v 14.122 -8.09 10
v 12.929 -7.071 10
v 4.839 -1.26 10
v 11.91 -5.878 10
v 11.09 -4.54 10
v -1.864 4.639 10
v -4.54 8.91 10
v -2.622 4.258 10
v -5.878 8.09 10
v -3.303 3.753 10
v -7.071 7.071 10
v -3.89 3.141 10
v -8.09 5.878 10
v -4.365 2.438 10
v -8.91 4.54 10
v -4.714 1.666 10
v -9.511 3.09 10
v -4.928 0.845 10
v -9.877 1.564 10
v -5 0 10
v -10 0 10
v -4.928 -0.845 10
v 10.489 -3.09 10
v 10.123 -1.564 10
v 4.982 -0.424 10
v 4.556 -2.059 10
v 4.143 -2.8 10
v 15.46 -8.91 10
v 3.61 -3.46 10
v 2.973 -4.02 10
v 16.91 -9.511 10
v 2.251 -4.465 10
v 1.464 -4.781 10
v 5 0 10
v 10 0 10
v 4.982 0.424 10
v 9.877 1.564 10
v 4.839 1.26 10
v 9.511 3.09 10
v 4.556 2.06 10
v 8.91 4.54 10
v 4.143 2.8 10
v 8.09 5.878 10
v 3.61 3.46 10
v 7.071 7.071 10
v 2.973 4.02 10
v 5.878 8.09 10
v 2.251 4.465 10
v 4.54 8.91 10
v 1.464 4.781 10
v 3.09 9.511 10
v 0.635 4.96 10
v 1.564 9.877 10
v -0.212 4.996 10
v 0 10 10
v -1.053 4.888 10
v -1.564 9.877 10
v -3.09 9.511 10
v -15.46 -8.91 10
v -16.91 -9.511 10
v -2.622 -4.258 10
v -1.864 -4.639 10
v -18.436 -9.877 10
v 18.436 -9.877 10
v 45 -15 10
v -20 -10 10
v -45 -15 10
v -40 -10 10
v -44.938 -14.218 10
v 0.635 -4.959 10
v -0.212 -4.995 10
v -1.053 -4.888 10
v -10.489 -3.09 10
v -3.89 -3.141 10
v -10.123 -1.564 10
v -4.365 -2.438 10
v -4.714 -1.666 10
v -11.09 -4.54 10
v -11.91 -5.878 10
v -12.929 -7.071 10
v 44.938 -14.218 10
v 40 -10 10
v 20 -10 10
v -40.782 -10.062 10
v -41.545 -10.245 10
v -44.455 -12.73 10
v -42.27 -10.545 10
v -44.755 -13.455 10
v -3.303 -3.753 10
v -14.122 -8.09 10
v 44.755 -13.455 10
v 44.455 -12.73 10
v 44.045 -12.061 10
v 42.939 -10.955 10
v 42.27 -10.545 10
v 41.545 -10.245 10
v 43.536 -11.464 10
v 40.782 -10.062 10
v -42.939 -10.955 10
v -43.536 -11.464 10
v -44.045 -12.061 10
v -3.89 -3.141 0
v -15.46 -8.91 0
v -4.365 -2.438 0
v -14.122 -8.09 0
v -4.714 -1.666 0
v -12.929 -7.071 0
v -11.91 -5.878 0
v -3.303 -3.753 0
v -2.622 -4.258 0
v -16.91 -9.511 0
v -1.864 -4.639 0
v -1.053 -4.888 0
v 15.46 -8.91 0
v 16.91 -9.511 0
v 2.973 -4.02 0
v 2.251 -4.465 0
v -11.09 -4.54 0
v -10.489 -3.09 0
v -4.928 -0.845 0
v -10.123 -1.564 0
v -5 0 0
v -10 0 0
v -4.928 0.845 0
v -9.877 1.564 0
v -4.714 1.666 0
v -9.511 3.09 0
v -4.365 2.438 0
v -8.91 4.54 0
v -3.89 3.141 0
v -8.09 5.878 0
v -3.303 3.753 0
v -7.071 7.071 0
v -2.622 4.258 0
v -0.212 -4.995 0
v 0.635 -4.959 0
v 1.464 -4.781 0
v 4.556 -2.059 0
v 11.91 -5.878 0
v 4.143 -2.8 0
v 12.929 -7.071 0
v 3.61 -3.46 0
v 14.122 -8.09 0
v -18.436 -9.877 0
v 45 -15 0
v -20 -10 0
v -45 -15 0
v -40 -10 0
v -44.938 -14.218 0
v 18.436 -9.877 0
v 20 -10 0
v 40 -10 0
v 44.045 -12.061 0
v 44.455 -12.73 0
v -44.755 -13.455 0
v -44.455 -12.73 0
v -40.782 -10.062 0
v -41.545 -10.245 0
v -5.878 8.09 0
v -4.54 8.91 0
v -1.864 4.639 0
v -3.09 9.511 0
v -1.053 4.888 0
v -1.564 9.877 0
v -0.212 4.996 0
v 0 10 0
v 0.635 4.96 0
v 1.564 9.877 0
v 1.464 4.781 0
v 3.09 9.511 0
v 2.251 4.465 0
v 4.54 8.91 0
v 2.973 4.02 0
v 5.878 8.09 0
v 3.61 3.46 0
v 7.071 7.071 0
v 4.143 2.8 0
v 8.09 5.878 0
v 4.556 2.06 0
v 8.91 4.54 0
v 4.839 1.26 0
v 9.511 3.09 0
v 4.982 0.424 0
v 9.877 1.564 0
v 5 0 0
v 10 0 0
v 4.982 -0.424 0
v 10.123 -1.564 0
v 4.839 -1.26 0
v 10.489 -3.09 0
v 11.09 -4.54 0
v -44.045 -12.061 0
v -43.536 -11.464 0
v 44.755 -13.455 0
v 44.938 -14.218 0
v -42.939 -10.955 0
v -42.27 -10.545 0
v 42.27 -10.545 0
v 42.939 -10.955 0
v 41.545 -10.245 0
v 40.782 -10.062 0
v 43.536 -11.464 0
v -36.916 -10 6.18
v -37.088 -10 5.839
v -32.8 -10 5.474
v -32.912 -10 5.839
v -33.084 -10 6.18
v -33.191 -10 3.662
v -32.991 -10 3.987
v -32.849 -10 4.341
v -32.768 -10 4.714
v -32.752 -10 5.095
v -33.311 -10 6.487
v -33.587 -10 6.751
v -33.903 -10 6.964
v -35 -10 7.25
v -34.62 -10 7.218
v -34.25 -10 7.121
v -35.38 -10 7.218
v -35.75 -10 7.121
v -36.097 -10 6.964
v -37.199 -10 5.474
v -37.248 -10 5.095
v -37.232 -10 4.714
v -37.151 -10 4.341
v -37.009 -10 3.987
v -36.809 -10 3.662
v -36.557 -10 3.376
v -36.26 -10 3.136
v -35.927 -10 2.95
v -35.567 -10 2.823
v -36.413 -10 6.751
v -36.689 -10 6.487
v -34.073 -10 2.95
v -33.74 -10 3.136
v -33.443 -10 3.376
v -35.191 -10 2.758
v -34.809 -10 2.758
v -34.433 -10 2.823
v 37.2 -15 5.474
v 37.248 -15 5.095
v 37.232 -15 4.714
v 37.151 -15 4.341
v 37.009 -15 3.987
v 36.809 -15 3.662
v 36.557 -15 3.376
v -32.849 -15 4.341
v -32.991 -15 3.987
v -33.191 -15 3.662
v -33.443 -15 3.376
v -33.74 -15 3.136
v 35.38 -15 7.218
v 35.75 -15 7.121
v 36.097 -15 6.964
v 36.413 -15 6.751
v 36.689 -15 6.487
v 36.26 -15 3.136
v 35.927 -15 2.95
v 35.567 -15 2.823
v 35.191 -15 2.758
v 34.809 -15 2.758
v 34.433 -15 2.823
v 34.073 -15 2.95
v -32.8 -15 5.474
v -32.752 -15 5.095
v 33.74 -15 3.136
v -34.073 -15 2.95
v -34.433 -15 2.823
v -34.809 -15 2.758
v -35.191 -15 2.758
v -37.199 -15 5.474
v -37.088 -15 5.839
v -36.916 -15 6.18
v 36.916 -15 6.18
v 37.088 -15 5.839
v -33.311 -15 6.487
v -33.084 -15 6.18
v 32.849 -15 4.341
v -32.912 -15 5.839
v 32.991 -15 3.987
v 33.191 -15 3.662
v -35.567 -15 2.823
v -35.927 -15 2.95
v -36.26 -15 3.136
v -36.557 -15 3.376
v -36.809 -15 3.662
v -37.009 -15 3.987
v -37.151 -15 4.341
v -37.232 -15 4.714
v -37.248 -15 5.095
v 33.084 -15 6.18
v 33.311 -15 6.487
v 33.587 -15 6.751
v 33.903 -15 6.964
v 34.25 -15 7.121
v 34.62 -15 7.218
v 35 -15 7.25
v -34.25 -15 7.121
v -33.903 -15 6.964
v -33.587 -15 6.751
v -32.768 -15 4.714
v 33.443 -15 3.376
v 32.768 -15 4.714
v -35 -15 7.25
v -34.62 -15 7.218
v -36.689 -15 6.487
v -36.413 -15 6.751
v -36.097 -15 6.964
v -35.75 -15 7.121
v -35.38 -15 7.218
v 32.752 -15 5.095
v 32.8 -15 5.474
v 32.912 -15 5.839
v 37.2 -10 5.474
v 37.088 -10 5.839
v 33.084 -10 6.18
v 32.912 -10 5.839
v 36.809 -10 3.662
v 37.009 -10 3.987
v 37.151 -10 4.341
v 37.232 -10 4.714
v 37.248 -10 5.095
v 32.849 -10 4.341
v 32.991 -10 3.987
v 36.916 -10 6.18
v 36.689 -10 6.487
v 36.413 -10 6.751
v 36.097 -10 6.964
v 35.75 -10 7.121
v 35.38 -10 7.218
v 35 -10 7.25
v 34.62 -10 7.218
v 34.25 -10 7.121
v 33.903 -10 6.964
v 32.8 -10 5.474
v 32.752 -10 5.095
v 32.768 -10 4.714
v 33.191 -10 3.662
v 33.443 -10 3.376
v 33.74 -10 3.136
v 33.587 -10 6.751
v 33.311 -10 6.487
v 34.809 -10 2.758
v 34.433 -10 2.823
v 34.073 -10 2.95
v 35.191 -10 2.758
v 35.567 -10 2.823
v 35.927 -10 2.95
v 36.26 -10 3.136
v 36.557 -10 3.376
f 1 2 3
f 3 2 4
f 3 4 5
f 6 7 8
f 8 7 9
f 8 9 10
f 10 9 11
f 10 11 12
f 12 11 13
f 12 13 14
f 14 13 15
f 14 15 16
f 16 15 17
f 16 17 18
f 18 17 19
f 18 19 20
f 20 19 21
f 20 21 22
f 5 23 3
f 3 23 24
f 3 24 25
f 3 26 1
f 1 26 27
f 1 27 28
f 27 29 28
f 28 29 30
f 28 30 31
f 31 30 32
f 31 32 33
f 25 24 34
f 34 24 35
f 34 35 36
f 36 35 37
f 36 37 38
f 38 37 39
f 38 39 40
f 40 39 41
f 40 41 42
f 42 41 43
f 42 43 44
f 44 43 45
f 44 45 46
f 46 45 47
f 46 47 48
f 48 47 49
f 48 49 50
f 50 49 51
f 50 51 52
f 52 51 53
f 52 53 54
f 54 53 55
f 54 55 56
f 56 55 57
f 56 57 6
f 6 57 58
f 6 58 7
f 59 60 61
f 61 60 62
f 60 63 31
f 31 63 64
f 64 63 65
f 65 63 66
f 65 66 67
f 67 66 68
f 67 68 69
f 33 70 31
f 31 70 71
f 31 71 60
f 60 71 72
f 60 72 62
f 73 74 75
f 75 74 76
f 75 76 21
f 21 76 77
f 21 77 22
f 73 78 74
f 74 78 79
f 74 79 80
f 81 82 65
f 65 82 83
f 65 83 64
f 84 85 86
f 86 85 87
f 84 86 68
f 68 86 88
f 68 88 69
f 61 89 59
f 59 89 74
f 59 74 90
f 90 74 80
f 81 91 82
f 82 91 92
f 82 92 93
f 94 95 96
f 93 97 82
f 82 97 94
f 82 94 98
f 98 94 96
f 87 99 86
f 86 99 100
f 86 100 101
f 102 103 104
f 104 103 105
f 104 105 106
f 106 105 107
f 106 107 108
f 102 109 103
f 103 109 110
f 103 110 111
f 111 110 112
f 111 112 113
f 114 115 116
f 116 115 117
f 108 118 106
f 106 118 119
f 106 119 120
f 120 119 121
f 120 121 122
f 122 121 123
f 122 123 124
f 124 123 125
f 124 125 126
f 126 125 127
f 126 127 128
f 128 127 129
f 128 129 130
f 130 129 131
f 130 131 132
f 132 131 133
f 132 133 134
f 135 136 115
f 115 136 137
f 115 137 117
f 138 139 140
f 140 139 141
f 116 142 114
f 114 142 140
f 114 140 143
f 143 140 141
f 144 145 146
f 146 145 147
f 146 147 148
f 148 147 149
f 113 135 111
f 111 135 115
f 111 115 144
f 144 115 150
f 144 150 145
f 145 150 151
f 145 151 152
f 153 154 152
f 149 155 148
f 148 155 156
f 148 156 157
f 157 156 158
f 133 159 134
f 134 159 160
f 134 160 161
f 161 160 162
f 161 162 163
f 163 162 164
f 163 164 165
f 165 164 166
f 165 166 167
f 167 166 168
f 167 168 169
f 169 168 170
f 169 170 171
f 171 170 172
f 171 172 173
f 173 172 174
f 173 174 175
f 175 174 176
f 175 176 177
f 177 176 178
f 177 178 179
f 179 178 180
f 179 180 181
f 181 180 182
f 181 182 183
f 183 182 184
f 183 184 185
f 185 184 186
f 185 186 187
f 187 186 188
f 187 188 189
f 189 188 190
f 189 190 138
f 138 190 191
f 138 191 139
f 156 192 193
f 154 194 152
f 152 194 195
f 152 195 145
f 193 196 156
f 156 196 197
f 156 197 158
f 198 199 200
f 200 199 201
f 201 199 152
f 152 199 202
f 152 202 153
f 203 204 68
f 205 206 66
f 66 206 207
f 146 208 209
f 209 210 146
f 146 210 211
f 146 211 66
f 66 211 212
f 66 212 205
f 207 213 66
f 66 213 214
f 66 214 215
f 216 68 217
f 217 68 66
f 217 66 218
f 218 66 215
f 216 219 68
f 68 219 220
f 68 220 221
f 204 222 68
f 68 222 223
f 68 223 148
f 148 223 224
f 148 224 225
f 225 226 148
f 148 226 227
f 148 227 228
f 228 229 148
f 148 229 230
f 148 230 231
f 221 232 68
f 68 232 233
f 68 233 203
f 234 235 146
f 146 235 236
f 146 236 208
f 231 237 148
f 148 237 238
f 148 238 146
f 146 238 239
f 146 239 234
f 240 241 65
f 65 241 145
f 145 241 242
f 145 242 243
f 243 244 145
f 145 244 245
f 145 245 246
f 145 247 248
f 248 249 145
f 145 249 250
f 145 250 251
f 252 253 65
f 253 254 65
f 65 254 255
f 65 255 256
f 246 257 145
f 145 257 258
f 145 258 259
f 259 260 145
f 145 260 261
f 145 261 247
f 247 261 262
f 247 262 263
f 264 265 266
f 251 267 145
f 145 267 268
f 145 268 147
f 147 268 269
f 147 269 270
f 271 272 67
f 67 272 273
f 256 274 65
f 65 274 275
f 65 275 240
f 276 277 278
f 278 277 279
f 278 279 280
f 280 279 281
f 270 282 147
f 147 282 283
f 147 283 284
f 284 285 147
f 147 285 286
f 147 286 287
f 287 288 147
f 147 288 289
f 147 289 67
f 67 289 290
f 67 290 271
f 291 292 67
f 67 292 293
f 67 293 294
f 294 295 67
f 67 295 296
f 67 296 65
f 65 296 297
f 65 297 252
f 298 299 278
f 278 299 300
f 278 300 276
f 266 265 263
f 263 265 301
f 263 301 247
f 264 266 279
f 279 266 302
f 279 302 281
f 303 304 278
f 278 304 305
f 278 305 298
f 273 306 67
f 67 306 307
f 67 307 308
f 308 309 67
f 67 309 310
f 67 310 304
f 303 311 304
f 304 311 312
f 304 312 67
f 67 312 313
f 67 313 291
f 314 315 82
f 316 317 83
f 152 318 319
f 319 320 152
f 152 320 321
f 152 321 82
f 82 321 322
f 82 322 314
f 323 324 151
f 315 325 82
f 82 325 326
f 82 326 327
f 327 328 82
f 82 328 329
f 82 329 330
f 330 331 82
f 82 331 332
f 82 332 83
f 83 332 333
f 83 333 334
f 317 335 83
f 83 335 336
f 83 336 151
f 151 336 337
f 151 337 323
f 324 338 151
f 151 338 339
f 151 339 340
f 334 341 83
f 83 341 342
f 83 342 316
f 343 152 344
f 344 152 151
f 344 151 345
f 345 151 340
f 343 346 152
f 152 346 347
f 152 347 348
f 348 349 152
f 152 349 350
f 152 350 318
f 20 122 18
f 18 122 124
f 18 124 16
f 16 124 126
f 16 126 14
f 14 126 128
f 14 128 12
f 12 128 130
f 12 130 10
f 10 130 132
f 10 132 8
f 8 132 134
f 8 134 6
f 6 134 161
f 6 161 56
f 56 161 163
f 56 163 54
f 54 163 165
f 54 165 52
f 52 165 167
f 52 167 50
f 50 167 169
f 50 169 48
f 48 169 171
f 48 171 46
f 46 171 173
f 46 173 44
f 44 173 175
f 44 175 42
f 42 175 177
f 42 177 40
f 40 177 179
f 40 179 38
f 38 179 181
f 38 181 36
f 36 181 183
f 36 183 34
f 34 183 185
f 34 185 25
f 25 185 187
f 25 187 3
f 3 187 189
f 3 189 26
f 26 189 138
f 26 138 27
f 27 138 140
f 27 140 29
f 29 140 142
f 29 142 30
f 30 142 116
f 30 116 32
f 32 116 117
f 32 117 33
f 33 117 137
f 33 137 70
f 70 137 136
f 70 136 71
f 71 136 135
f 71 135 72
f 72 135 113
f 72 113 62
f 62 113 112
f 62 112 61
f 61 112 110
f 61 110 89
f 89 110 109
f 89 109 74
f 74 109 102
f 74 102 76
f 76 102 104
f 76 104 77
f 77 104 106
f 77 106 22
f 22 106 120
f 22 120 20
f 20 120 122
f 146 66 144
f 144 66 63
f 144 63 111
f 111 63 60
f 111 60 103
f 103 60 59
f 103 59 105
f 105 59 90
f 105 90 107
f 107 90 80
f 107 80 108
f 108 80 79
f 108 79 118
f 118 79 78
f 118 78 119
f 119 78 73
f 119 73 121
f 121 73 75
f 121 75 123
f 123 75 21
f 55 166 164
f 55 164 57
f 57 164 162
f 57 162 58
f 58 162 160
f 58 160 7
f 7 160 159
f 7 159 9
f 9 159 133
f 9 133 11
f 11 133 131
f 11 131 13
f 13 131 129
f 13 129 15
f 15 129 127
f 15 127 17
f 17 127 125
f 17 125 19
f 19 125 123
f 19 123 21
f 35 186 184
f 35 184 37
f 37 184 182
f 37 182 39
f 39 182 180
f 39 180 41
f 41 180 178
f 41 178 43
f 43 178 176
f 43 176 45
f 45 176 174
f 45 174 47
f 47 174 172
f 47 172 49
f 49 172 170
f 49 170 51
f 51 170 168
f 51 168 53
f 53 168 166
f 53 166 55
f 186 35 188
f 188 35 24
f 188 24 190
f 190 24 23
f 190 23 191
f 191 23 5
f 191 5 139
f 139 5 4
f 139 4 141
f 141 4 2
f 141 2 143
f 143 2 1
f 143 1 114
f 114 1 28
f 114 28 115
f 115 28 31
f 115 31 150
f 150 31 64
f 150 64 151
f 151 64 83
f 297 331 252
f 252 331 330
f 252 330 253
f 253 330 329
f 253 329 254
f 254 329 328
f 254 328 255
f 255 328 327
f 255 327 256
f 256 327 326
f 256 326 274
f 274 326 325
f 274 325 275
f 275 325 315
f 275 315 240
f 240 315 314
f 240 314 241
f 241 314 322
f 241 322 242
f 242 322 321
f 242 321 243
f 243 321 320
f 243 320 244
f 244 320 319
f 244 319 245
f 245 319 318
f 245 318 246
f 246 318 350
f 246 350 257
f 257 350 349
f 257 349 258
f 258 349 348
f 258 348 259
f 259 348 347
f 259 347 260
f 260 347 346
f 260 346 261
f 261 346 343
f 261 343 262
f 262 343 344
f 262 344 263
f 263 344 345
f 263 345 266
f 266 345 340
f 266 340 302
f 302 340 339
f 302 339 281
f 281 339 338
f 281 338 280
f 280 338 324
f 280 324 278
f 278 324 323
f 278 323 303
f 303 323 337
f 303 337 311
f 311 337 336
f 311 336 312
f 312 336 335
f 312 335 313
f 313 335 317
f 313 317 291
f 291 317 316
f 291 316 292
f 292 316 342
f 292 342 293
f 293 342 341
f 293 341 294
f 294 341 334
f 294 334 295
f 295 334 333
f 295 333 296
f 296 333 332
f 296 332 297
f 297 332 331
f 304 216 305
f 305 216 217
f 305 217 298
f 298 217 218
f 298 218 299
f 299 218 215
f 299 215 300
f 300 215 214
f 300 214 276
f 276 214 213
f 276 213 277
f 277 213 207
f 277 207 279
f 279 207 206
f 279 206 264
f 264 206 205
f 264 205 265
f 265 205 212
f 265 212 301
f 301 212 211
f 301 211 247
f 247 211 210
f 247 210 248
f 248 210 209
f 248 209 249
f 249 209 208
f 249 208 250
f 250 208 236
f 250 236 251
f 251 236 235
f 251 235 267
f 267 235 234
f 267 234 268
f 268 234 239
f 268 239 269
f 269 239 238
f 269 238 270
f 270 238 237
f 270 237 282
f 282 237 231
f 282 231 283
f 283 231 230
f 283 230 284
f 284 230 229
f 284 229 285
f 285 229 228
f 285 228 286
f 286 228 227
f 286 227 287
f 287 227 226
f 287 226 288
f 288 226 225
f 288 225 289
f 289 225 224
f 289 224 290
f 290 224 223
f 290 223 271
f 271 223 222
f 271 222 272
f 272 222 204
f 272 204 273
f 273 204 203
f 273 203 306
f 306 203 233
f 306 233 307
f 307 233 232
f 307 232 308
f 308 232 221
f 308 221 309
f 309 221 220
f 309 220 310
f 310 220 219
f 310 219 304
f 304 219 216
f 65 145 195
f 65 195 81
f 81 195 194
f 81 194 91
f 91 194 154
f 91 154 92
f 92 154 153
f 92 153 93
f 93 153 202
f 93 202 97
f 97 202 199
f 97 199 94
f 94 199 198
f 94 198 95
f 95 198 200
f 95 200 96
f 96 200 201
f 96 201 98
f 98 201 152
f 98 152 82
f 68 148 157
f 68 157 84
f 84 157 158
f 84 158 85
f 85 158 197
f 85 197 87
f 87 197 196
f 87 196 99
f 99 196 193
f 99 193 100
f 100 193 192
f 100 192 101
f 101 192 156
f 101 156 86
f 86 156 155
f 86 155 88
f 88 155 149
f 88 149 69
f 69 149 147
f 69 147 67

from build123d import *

# Parameters (mm, degrees)
SKETCH1_R            = 5
BOSS_EXTRUDE1_DEPTH  = 10
FILLET1_DEPTH        = 10
FILLET1_2_DEPTH      = 10
M4_CLEARANCE_HOLE1_D = 4.5
FILLET2_R            = 5


with BuildPart() as part:
    # Sketch1 → Boss-Extrude1 (new body)
    with BuildSketch(Plane.XY):
        Polygon((10, -10), (45, -10), (45, -15), (-45, -15), (-45, -10), (-10, -10), (-10, 10), (10, 10), align=None)
        Circle(SKETCH1_R, mode=Mode.SUBTRACT)
    extrude(amount=BOSS_EXTRUDE1_DEPTH)

    # Fillet1: read off the stored shape, not the designer's step
    # Fillet1 outline → Fillet1 (cut)
    with BuildSketch(Plane.XY):
        with BuildLine():
            Line((10, 10), (0, 10))
            ThreePointArc((0, 10), (7.071067812, 7.071067812), (10, 0))
            Line((10, 0), (10, 10))
        make_face()
        with BuildLine():
            Line((-10, 10), (-10, 0))
            ThreePointArc((-10, 0), (-7.071067812, 7.071067812), (0, 10))
            Line((0, 10), (-10, 10))
        make_face()
    extrude(amount=FILLET1_DEPTH, mode=Mode.SUBTRACT)

    # Fillet1 2 outline → Fillet1 2 (add)
    with BuildSketch(Plane.XY):
        with BuildLine():
            ThreePointArc((20, -10), (12.928932188, -7.071067812), (10, 0))
            Line((10, 0), (10, -10))
            Line((10, -10), (20, -10))
        make_face()
        with BuildLine():
            ThreePointArc((-10, 0), (-12.928932188, -7.071067812), (-20, -10))
            Line((-20, -10), (-10, -10))
            Line((-10, -10), (-10, 0))
        make_face()
    extrude(amount=FILLET1_2_DEPTH)

    # M4 Clearance Hole1 (through all)
    with Locations(Plane(origin=(0, -10, 0), x_dir=(1, 0, 0), z_dir=(0, 1, 0))):
        with Locations((-35, -5), (35, -5)):
            Hole(M4_CLEARANCE_HOLE1_D / 2)

    # Fillet2
    fillet2_edges = [part.edges().sort_by_distance(p)[0] for p in [
        (45, -10, 5),
        (-45, -10, 5),
    ]]
    fillet(fillet2_edges, radius=FILLET2_R - 0.0001)  # a hair under: the kernel refuses the full size


solid = part.part
